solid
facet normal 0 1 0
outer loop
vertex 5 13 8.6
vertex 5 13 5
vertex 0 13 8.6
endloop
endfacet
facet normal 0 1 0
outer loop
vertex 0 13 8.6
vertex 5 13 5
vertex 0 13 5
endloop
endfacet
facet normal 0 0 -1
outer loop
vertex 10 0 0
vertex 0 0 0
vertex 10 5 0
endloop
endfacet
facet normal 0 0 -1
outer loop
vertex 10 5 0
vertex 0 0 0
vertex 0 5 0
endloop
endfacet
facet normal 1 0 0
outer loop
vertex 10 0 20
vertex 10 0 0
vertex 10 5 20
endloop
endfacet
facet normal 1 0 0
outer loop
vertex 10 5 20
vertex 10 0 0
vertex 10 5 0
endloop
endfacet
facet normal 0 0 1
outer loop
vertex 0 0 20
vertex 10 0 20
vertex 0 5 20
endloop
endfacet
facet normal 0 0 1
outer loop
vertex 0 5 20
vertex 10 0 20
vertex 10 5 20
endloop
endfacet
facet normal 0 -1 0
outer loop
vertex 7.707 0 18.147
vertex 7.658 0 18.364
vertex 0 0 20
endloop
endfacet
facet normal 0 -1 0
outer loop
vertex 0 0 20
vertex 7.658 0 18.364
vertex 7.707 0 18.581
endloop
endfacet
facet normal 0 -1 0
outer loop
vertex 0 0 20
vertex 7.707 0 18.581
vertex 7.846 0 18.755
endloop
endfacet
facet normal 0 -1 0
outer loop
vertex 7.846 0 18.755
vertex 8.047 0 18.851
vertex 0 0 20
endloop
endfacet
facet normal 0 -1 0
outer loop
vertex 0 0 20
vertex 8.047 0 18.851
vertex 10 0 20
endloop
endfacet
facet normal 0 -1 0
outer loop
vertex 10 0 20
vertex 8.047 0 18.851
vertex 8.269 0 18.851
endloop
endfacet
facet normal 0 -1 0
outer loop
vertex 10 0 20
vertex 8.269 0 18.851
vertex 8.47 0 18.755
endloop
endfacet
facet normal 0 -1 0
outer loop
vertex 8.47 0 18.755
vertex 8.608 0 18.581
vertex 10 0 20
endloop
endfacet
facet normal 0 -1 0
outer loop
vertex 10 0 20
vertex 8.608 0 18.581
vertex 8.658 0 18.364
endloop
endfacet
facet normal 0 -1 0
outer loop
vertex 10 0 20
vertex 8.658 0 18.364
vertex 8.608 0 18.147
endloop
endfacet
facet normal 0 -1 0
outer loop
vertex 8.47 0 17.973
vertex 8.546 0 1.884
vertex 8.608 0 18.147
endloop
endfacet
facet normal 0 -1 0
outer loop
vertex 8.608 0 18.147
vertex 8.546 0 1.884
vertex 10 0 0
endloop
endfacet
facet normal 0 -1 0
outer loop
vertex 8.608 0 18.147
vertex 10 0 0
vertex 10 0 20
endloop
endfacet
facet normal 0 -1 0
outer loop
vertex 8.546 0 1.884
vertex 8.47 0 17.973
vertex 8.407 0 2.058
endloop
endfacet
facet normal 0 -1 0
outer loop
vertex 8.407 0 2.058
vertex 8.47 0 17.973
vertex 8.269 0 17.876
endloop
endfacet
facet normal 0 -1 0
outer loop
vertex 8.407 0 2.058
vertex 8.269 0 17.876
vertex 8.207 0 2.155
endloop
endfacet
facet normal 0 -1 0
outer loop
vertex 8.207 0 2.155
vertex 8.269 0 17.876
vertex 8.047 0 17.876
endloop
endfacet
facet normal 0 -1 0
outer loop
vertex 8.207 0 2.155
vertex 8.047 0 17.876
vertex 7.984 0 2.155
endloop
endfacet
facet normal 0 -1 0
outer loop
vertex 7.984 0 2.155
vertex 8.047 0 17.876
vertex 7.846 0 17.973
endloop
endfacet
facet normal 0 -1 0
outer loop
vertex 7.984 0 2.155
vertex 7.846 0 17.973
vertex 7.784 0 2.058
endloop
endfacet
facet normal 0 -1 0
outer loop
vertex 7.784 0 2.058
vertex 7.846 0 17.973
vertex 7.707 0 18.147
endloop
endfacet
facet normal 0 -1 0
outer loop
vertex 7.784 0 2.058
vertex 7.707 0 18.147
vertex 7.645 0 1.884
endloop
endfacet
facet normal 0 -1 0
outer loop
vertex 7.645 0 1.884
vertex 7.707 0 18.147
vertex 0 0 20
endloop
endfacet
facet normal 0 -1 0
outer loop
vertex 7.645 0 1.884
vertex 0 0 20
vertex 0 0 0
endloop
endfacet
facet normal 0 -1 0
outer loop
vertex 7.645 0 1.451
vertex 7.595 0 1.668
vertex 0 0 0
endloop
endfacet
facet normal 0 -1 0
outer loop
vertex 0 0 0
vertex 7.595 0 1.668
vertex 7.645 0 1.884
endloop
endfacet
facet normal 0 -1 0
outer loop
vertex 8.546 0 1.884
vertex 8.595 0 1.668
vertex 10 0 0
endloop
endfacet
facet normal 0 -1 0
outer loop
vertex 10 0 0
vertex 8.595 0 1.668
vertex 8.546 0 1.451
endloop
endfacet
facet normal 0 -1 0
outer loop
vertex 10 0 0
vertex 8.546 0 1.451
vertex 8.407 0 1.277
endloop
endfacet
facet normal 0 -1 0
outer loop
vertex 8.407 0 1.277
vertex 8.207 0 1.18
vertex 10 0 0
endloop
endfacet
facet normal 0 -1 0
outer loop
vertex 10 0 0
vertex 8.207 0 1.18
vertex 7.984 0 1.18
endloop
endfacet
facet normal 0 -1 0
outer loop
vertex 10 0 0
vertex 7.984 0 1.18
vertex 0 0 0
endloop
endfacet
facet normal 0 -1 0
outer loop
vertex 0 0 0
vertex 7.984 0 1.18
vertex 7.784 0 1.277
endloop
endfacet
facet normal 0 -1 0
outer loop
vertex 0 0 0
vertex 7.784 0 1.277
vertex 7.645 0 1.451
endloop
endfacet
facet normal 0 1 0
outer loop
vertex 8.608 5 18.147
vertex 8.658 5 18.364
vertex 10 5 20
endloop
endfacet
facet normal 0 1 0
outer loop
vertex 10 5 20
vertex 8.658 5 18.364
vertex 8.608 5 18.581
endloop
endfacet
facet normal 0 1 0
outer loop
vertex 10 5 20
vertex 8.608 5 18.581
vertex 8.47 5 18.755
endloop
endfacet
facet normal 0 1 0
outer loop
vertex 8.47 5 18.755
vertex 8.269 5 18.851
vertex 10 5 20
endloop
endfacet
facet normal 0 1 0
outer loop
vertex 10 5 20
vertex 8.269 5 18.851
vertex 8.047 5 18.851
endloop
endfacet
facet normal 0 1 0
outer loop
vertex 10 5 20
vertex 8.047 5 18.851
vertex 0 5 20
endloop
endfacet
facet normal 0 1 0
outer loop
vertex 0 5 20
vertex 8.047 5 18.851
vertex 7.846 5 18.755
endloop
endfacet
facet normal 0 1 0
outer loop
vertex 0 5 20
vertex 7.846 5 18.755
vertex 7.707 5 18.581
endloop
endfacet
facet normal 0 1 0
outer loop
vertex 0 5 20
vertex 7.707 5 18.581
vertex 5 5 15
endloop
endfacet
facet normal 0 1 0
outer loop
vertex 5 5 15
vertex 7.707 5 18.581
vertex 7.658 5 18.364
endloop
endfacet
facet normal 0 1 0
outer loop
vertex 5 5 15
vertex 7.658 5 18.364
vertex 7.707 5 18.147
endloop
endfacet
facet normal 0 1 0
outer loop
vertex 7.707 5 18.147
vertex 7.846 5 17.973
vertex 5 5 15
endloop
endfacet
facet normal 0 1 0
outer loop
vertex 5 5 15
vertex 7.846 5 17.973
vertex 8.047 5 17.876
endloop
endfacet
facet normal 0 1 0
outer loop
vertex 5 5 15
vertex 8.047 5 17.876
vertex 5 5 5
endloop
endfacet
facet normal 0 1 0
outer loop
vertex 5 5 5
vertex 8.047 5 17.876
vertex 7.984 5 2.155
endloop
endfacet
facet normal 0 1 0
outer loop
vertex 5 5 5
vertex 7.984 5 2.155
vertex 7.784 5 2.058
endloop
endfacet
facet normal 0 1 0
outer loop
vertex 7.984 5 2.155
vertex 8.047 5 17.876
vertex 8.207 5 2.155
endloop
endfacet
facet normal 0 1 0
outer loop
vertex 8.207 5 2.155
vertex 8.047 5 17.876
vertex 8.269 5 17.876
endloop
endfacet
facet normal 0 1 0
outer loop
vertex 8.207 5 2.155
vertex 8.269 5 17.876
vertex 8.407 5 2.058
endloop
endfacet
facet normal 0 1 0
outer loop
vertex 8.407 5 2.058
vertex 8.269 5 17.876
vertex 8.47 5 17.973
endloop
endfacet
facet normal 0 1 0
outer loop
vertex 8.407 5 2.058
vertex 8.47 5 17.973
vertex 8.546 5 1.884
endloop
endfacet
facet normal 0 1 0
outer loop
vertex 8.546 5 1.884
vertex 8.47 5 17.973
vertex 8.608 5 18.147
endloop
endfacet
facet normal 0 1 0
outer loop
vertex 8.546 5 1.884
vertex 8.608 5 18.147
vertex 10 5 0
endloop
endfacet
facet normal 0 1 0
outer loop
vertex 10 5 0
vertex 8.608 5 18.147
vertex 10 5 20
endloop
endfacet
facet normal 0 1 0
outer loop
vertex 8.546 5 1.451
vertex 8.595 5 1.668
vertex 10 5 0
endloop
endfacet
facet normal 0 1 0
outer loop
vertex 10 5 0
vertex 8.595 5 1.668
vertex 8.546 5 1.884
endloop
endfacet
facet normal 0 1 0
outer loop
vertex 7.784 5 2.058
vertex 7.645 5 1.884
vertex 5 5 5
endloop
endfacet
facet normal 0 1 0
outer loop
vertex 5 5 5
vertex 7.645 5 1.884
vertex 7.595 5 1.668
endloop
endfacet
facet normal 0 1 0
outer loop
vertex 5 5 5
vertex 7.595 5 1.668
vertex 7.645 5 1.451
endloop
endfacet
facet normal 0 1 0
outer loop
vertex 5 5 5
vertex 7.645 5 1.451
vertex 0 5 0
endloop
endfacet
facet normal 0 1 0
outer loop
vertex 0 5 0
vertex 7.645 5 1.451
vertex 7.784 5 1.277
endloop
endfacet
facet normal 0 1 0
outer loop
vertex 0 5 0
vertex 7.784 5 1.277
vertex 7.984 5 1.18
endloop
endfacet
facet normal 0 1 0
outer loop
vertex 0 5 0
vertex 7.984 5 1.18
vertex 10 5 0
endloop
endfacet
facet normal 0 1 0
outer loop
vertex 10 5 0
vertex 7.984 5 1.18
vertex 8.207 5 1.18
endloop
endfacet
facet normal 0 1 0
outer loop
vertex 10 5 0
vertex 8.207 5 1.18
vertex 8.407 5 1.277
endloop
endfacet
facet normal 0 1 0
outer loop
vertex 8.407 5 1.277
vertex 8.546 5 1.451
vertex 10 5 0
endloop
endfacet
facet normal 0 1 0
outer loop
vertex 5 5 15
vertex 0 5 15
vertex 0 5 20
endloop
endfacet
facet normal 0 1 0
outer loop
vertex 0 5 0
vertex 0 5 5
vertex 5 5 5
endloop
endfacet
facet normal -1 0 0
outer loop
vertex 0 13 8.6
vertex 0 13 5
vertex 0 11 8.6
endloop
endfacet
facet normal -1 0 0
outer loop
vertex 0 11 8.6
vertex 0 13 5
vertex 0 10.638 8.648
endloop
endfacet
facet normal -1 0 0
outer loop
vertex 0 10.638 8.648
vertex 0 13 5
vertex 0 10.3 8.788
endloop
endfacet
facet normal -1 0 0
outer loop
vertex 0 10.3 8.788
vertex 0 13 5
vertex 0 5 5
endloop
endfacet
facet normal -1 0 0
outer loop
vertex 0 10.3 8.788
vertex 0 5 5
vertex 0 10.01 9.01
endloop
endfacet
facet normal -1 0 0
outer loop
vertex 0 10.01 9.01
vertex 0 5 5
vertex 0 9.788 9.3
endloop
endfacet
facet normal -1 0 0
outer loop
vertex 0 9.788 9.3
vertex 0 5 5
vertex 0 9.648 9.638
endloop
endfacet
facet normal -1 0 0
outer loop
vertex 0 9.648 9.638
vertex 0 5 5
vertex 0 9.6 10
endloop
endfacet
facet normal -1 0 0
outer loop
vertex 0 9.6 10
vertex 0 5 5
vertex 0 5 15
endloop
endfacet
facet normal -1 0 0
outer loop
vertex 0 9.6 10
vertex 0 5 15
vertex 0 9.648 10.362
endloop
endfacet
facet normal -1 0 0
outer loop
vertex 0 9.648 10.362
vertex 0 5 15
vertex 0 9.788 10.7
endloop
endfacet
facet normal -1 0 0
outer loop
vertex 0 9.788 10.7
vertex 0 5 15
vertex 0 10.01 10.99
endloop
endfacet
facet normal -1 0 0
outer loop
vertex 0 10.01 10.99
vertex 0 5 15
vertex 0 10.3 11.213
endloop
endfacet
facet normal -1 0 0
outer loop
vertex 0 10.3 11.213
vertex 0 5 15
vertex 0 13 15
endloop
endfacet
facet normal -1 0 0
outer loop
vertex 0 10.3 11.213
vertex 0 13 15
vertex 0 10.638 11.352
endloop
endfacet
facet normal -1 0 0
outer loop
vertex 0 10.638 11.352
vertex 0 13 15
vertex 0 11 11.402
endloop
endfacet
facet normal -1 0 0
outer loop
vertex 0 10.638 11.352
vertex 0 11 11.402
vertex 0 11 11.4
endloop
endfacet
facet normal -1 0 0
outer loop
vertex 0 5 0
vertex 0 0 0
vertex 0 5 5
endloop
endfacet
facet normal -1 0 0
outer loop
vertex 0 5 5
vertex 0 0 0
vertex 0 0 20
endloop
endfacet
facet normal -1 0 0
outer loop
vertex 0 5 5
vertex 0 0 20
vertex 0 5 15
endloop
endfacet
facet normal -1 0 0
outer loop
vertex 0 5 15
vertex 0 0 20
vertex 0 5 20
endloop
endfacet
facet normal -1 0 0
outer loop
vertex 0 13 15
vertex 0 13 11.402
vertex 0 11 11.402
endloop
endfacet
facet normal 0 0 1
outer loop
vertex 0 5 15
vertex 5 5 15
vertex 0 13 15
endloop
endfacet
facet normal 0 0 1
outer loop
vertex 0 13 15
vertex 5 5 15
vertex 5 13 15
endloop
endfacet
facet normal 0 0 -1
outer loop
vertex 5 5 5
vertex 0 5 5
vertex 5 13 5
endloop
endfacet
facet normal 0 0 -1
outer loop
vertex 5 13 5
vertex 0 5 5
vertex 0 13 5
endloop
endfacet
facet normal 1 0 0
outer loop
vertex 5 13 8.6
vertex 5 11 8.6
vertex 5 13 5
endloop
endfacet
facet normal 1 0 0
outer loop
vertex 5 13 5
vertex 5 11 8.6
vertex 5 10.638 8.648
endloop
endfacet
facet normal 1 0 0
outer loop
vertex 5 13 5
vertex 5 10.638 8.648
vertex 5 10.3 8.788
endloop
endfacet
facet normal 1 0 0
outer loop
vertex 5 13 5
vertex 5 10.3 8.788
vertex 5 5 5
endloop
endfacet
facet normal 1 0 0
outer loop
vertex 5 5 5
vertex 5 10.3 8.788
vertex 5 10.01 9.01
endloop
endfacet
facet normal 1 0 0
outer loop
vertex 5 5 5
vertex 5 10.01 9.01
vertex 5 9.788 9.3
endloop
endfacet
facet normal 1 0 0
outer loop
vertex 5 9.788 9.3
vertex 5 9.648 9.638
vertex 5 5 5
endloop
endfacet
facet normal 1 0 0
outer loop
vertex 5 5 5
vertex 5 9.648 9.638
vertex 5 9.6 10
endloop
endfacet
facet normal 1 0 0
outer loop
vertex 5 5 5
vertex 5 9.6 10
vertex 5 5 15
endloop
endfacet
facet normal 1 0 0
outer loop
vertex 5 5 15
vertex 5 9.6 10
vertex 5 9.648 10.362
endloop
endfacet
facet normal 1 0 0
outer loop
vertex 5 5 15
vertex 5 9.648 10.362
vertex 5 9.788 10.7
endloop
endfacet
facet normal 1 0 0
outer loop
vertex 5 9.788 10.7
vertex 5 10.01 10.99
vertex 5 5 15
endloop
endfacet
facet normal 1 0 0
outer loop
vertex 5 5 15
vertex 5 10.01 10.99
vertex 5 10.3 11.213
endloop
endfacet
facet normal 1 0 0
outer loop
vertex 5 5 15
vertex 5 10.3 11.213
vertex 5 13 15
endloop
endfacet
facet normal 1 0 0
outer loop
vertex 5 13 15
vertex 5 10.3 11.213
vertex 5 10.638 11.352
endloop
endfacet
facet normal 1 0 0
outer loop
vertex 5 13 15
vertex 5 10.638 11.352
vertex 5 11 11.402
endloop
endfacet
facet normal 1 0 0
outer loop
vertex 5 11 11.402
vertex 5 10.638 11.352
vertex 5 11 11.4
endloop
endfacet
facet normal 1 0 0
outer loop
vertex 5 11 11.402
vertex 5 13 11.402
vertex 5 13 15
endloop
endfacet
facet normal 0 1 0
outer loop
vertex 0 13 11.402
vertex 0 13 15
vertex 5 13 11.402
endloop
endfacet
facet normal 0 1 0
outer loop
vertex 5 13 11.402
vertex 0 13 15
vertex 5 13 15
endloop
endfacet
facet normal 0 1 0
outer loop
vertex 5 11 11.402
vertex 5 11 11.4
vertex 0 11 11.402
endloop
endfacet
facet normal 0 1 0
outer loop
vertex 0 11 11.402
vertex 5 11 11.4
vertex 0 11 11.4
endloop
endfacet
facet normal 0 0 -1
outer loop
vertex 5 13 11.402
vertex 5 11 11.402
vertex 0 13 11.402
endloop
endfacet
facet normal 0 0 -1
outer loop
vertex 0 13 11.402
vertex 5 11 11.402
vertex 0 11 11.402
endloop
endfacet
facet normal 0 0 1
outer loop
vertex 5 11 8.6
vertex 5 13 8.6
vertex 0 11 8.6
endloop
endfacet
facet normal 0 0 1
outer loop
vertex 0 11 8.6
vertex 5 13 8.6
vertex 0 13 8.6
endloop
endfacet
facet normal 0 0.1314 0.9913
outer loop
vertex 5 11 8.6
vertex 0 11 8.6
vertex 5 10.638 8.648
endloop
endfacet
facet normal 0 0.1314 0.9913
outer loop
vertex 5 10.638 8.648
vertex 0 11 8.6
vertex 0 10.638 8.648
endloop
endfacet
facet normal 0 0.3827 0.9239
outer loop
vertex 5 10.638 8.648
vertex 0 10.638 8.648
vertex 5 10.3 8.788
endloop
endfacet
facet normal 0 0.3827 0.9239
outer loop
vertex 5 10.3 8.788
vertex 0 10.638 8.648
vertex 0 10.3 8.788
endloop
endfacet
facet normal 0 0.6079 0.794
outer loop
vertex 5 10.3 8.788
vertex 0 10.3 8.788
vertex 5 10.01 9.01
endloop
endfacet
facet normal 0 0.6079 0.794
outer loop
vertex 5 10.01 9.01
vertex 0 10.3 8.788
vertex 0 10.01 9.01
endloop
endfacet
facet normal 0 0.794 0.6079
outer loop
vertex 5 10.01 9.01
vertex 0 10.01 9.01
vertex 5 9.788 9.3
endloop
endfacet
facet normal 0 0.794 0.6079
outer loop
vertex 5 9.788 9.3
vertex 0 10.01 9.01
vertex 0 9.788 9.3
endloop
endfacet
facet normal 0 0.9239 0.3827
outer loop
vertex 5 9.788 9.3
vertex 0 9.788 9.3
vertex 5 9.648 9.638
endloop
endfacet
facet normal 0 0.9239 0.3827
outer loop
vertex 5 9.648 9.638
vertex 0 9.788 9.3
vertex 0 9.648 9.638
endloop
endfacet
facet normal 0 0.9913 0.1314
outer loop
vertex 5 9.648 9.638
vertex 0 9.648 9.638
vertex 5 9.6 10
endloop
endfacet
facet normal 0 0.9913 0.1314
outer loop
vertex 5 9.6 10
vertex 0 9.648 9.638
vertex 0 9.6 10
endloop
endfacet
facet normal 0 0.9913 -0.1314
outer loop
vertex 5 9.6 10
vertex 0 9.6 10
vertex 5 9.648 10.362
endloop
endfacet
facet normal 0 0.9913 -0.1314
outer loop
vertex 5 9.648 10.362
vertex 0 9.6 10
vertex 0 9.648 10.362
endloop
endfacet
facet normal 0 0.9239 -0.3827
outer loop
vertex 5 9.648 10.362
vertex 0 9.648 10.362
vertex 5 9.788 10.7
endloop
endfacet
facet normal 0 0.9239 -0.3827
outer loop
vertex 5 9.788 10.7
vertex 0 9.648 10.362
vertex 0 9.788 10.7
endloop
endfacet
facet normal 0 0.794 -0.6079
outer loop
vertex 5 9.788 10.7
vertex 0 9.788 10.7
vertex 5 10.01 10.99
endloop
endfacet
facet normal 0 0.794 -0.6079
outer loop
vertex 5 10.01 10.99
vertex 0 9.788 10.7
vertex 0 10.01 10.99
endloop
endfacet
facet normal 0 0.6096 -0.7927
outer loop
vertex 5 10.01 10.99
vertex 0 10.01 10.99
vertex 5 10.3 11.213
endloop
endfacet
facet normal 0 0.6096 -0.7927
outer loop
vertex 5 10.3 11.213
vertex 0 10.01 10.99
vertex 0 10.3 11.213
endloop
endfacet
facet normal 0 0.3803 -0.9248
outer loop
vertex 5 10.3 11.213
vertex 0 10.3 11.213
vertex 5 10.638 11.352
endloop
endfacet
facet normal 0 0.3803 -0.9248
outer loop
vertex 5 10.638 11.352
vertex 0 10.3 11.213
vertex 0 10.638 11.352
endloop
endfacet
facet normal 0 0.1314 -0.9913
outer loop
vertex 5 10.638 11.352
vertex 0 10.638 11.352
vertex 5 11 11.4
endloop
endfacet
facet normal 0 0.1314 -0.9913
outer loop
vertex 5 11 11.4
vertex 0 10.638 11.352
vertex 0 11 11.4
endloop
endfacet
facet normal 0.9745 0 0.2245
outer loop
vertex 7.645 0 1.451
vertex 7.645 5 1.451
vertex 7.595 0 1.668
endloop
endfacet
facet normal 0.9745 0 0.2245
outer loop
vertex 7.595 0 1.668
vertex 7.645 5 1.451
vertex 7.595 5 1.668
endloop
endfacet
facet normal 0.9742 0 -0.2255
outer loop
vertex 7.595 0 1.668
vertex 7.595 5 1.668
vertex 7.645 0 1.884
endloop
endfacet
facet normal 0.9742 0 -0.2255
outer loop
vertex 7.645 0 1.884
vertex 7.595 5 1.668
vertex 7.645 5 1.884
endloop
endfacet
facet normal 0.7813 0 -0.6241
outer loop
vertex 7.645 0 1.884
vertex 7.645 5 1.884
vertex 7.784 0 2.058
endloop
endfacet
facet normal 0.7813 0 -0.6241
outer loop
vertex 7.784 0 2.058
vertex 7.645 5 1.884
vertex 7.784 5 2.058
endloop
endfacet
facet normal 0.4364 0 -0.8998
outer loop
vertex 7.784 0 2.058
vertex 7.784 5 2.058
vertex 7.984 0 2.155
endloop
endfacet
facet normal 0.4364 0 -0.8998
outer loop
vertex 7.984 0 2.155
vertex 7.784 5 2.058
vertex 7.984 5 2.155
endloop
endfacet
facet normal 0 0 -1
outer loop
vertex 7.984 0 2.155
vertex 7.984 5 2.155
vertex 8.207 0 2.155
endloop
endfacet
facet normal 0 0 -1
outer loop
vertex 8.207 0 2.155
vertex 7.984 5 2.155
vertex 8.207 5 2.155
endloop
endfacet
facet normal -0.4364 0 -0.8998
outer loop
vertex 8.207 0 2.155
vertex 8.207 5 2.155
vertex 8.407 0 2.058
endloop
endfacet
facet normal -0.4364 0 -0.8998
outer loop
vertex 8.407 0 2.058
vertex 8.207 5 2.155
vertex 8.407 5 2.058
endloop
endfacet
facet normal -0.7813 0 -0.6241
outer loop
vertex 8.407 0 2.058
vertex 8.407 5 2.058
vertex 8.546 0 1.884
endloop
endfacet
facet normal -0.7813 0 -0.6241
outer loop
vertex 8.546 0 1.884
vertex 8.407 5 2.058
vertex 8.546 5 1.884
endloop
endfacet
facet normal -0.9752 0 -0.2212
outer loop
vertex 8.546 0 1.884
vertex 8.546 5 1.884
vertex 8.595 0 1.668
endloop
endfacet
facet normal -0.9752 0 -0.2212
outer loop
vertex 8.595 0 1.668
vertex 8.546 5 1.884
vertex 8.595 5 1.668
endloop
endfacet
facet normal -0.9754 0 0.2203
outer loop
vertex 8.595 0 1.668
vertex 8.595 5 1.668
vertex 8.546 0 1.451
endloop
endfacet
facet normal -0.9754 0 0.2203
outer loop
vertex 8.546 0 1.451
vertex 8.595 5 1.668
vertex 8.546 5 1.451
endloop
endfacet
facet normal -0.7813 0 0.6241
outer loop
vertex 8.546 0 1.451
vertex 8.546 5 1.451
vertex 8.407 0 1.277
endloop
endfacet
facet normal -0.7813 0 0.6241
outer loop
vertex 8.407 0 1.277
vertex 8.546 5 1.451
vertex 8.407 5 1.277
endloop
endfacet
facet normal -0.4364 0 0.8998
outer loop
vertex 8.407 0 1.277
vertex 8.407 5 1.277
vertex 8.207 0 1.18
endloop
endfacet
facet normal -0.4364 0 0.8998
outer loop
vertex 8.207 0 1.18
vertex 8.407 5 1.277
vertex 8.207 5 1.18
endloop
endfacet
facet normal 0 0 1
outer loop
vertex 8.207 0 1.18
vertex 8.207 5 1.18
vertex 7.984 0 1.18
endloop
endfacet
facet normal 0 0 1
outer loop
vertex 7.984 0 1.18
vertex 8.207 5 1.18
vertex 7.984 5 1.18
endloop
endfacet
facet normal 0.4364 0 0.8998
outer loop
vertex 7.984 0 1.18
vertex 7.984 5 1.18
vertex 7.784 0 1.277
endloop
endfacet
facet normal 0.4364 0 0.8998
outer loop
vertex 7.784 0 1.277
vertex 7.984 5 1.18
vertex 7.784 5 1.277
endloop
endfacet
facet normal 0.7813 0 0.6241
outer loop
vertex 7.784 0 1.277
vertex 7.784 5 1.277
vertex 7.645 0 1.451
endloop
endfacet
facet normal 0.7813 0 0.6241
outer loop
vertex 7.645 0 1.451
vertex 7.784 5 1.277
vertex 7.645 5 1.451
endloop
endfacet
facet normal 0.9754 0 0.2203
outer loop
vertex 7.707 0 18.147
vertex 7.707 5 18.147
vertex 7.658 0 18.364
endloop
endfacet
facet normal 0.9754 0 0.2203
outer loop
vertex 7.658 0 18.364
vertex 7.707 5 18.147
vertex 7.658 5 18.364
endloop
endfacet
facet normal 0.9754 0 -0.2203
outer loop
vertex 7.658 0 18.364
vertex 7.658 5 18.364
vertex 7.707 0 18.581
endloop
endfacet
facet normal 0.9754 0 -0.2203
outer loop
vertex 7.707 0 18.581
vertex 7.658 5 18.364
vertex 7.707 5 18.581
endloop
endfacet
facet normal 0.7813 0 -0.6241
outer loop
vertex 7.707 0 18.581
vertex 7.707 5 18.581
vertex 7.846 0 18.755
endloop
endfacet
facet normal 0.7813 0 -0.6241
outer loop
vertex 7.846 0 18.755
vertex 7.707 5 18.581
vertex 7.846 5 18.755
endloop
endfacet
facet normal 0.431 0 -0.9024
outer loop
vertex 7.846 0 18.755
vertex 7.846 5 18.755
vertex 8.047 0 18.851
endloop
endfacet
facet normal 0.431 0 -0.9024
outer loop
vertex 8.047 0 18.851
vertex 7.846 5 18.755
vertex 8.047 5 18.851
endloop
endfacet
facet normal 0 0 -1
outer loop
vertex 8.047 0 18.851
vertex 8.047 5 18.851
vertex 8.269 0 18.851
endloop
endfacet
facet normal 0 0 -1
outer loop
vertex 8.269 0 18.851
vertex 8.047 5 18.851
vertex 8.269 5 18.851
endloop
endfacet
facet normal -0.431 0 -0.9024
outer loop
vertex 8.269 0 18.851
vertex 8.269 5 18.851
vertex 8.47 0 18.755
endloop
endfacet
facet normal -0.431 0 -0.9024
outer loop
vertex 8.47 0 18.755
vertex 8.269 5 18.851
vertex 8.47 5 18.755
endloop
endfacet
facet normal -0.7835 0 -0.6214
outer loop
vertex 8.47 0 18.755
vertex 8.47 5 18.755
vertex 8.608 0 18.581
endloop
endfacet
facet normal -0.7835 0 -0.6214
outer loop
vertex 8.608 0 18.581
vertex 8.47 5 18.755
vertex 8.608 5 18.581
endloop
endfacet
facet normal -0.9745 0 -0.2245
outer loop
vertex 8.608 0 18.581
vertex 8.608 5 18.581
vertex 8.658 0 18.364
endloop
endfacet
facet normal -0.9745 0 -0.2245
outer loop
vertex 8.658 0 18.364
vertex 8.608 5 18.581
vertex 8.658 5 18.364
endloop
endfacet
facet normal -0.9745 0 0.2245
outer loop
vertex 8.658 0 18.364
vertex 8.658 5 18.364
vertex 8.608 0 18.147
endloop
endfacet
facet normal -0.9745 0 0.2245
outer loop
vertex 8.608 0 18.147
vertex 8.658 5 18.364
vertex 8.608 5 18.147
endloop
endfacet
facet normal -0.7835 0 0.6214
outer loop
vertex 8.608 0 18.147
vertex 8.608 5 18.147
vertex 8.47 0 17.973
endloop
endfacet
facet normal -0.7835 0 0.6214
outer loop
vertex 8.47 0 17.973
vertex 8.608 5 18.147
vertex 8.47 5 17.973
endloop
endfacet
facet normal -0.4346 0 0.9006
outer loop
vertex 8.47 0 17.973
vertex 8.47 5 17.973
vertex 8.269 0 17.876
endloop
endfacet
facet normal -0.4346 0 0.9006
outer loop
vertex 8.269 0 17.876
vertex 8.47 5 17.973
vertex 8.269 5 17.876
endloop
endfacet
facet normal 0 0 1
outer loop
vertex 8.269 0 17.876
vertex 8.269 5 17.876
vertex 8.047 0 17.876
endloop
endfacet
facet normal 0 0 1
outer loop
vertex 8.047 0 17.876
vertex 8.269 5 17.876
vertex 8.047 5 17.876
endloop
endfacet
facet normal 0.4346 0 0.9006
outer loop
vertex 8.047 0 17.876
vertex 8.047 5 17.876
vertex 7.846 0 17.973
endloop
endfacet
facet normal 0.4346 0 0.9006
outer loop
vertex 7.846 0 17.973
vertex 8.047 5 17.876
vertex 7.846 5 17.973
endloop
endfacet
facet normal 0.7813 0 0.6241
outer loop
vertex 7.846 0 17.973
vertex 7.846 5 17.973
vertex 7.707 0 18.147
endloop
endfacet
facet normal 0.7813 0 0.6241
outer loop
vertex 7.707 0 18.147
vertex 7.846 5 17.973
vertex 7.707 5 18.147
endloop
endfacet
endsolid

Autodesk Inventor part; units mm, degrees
ref_plane "YZ Plane" through (0, 0, 0) normal (1, 0, 0) x (0, 1, 0)
ref_plane "XZ Plane" through (0, 0, 0) normal (0, 1, 0) x (-1, 0, 0)
ref_plane "XY Plane" through (0, 0, 0) normal (0, 0, 1) x (1, 0, 0)
sketch "Sketch1" plane through (0, 0, 0) normal (0, 1, 0) x (-1, 0, 0)
  line L0 (0, 0) -> (-10, 0)
  line L1 (-10, 0) -> (-10, 20)
  line L2 (-10, 20) -> (0, 20)
  line L3 (0, 20) -> (0, 0)
  dimension "d0" = 10
  dimension "d1" = 20
extrude "Extrusion1" add sketch "Sketch1" along normal blind 5
sketch "Sketch2" plane through (0, 5, 0) normal (0, 1, 0) x (1, 0, 0)
  line L0 (0, 0) -> (0, -20) projected
  line L1 (0, -15.0001) -> (5, -15.0001)
  line L2 (5, -15.0001) -> (5, -5.0001)
  line L3 (5, -5.0001) -> (0, -5.0001)
  line L4 (0, -5.0001) -> (0, -15.0001)
  dimension "d4" = 5
  dimension "d5" = 10
extrude "Extrusion2" add sketch "Sketch2" along normal blind 8
sketch "Sketch3" plane through (0, 0, 0) normal (-1, 0, 0) x (0, 0, 1)
  circle A0 centre (10.0001, 11.0001) radius 1.5
  point P0 (0, 0)
  dimension "d8" = 3
hole "Hole1" at (0, 11.0001, 10.0001) direction (1, 0, 0) diameter 2.8 end through all
sketch "Sketch4" plane through (0, 0, 0) normal (-1, 0, 0) x (0, 0, 1)
  circle A0 centre (10.0001, 11.0001) radius 1.4 projected
  line L0 (15.0001, 13) -> (5.0001, 13) projected
  line L1 (8.6001, 11.0001) -> (11.402, 11.0001)
  line L2 (11.402, 11.0001) -> (11.402, 13)
  line L3 (11.402, 13) -> (8.6001, 13)
  line L4 (8.6001, 13) -> (8.6001, 11.0001)
  point P0 (0, 0)
extrude "Extrusion3" cut sketch "Sketch4" against normal blind 9.4625 contours L1 A0 | A0 L4 L0 L2 picked at (10.3893, 11.6381)
sketch "Sketch5" plane through (0, 5, 0) normal (0, 1, 0) x (1, 0, 0)
  point P0 (0, 0)
  point P1 (8.0954, -1.6675)
hole "Hole2" at (8.0954, 5, 1.6675) direction (0, -1, 0) diameter 1 end through all
sketch "Sketch6" plane through (0, 5, 0) normal (0, 1, 0) x (1, 0, 0)
  point P0 (0, 0)
  point P1 (8.1579, -18.3637)
hole "Hole3" at (8.1579, 5, 18.3637) direction (0, -1, 0) diameter 1 end through all
properties part number "laser_uchwyt"
